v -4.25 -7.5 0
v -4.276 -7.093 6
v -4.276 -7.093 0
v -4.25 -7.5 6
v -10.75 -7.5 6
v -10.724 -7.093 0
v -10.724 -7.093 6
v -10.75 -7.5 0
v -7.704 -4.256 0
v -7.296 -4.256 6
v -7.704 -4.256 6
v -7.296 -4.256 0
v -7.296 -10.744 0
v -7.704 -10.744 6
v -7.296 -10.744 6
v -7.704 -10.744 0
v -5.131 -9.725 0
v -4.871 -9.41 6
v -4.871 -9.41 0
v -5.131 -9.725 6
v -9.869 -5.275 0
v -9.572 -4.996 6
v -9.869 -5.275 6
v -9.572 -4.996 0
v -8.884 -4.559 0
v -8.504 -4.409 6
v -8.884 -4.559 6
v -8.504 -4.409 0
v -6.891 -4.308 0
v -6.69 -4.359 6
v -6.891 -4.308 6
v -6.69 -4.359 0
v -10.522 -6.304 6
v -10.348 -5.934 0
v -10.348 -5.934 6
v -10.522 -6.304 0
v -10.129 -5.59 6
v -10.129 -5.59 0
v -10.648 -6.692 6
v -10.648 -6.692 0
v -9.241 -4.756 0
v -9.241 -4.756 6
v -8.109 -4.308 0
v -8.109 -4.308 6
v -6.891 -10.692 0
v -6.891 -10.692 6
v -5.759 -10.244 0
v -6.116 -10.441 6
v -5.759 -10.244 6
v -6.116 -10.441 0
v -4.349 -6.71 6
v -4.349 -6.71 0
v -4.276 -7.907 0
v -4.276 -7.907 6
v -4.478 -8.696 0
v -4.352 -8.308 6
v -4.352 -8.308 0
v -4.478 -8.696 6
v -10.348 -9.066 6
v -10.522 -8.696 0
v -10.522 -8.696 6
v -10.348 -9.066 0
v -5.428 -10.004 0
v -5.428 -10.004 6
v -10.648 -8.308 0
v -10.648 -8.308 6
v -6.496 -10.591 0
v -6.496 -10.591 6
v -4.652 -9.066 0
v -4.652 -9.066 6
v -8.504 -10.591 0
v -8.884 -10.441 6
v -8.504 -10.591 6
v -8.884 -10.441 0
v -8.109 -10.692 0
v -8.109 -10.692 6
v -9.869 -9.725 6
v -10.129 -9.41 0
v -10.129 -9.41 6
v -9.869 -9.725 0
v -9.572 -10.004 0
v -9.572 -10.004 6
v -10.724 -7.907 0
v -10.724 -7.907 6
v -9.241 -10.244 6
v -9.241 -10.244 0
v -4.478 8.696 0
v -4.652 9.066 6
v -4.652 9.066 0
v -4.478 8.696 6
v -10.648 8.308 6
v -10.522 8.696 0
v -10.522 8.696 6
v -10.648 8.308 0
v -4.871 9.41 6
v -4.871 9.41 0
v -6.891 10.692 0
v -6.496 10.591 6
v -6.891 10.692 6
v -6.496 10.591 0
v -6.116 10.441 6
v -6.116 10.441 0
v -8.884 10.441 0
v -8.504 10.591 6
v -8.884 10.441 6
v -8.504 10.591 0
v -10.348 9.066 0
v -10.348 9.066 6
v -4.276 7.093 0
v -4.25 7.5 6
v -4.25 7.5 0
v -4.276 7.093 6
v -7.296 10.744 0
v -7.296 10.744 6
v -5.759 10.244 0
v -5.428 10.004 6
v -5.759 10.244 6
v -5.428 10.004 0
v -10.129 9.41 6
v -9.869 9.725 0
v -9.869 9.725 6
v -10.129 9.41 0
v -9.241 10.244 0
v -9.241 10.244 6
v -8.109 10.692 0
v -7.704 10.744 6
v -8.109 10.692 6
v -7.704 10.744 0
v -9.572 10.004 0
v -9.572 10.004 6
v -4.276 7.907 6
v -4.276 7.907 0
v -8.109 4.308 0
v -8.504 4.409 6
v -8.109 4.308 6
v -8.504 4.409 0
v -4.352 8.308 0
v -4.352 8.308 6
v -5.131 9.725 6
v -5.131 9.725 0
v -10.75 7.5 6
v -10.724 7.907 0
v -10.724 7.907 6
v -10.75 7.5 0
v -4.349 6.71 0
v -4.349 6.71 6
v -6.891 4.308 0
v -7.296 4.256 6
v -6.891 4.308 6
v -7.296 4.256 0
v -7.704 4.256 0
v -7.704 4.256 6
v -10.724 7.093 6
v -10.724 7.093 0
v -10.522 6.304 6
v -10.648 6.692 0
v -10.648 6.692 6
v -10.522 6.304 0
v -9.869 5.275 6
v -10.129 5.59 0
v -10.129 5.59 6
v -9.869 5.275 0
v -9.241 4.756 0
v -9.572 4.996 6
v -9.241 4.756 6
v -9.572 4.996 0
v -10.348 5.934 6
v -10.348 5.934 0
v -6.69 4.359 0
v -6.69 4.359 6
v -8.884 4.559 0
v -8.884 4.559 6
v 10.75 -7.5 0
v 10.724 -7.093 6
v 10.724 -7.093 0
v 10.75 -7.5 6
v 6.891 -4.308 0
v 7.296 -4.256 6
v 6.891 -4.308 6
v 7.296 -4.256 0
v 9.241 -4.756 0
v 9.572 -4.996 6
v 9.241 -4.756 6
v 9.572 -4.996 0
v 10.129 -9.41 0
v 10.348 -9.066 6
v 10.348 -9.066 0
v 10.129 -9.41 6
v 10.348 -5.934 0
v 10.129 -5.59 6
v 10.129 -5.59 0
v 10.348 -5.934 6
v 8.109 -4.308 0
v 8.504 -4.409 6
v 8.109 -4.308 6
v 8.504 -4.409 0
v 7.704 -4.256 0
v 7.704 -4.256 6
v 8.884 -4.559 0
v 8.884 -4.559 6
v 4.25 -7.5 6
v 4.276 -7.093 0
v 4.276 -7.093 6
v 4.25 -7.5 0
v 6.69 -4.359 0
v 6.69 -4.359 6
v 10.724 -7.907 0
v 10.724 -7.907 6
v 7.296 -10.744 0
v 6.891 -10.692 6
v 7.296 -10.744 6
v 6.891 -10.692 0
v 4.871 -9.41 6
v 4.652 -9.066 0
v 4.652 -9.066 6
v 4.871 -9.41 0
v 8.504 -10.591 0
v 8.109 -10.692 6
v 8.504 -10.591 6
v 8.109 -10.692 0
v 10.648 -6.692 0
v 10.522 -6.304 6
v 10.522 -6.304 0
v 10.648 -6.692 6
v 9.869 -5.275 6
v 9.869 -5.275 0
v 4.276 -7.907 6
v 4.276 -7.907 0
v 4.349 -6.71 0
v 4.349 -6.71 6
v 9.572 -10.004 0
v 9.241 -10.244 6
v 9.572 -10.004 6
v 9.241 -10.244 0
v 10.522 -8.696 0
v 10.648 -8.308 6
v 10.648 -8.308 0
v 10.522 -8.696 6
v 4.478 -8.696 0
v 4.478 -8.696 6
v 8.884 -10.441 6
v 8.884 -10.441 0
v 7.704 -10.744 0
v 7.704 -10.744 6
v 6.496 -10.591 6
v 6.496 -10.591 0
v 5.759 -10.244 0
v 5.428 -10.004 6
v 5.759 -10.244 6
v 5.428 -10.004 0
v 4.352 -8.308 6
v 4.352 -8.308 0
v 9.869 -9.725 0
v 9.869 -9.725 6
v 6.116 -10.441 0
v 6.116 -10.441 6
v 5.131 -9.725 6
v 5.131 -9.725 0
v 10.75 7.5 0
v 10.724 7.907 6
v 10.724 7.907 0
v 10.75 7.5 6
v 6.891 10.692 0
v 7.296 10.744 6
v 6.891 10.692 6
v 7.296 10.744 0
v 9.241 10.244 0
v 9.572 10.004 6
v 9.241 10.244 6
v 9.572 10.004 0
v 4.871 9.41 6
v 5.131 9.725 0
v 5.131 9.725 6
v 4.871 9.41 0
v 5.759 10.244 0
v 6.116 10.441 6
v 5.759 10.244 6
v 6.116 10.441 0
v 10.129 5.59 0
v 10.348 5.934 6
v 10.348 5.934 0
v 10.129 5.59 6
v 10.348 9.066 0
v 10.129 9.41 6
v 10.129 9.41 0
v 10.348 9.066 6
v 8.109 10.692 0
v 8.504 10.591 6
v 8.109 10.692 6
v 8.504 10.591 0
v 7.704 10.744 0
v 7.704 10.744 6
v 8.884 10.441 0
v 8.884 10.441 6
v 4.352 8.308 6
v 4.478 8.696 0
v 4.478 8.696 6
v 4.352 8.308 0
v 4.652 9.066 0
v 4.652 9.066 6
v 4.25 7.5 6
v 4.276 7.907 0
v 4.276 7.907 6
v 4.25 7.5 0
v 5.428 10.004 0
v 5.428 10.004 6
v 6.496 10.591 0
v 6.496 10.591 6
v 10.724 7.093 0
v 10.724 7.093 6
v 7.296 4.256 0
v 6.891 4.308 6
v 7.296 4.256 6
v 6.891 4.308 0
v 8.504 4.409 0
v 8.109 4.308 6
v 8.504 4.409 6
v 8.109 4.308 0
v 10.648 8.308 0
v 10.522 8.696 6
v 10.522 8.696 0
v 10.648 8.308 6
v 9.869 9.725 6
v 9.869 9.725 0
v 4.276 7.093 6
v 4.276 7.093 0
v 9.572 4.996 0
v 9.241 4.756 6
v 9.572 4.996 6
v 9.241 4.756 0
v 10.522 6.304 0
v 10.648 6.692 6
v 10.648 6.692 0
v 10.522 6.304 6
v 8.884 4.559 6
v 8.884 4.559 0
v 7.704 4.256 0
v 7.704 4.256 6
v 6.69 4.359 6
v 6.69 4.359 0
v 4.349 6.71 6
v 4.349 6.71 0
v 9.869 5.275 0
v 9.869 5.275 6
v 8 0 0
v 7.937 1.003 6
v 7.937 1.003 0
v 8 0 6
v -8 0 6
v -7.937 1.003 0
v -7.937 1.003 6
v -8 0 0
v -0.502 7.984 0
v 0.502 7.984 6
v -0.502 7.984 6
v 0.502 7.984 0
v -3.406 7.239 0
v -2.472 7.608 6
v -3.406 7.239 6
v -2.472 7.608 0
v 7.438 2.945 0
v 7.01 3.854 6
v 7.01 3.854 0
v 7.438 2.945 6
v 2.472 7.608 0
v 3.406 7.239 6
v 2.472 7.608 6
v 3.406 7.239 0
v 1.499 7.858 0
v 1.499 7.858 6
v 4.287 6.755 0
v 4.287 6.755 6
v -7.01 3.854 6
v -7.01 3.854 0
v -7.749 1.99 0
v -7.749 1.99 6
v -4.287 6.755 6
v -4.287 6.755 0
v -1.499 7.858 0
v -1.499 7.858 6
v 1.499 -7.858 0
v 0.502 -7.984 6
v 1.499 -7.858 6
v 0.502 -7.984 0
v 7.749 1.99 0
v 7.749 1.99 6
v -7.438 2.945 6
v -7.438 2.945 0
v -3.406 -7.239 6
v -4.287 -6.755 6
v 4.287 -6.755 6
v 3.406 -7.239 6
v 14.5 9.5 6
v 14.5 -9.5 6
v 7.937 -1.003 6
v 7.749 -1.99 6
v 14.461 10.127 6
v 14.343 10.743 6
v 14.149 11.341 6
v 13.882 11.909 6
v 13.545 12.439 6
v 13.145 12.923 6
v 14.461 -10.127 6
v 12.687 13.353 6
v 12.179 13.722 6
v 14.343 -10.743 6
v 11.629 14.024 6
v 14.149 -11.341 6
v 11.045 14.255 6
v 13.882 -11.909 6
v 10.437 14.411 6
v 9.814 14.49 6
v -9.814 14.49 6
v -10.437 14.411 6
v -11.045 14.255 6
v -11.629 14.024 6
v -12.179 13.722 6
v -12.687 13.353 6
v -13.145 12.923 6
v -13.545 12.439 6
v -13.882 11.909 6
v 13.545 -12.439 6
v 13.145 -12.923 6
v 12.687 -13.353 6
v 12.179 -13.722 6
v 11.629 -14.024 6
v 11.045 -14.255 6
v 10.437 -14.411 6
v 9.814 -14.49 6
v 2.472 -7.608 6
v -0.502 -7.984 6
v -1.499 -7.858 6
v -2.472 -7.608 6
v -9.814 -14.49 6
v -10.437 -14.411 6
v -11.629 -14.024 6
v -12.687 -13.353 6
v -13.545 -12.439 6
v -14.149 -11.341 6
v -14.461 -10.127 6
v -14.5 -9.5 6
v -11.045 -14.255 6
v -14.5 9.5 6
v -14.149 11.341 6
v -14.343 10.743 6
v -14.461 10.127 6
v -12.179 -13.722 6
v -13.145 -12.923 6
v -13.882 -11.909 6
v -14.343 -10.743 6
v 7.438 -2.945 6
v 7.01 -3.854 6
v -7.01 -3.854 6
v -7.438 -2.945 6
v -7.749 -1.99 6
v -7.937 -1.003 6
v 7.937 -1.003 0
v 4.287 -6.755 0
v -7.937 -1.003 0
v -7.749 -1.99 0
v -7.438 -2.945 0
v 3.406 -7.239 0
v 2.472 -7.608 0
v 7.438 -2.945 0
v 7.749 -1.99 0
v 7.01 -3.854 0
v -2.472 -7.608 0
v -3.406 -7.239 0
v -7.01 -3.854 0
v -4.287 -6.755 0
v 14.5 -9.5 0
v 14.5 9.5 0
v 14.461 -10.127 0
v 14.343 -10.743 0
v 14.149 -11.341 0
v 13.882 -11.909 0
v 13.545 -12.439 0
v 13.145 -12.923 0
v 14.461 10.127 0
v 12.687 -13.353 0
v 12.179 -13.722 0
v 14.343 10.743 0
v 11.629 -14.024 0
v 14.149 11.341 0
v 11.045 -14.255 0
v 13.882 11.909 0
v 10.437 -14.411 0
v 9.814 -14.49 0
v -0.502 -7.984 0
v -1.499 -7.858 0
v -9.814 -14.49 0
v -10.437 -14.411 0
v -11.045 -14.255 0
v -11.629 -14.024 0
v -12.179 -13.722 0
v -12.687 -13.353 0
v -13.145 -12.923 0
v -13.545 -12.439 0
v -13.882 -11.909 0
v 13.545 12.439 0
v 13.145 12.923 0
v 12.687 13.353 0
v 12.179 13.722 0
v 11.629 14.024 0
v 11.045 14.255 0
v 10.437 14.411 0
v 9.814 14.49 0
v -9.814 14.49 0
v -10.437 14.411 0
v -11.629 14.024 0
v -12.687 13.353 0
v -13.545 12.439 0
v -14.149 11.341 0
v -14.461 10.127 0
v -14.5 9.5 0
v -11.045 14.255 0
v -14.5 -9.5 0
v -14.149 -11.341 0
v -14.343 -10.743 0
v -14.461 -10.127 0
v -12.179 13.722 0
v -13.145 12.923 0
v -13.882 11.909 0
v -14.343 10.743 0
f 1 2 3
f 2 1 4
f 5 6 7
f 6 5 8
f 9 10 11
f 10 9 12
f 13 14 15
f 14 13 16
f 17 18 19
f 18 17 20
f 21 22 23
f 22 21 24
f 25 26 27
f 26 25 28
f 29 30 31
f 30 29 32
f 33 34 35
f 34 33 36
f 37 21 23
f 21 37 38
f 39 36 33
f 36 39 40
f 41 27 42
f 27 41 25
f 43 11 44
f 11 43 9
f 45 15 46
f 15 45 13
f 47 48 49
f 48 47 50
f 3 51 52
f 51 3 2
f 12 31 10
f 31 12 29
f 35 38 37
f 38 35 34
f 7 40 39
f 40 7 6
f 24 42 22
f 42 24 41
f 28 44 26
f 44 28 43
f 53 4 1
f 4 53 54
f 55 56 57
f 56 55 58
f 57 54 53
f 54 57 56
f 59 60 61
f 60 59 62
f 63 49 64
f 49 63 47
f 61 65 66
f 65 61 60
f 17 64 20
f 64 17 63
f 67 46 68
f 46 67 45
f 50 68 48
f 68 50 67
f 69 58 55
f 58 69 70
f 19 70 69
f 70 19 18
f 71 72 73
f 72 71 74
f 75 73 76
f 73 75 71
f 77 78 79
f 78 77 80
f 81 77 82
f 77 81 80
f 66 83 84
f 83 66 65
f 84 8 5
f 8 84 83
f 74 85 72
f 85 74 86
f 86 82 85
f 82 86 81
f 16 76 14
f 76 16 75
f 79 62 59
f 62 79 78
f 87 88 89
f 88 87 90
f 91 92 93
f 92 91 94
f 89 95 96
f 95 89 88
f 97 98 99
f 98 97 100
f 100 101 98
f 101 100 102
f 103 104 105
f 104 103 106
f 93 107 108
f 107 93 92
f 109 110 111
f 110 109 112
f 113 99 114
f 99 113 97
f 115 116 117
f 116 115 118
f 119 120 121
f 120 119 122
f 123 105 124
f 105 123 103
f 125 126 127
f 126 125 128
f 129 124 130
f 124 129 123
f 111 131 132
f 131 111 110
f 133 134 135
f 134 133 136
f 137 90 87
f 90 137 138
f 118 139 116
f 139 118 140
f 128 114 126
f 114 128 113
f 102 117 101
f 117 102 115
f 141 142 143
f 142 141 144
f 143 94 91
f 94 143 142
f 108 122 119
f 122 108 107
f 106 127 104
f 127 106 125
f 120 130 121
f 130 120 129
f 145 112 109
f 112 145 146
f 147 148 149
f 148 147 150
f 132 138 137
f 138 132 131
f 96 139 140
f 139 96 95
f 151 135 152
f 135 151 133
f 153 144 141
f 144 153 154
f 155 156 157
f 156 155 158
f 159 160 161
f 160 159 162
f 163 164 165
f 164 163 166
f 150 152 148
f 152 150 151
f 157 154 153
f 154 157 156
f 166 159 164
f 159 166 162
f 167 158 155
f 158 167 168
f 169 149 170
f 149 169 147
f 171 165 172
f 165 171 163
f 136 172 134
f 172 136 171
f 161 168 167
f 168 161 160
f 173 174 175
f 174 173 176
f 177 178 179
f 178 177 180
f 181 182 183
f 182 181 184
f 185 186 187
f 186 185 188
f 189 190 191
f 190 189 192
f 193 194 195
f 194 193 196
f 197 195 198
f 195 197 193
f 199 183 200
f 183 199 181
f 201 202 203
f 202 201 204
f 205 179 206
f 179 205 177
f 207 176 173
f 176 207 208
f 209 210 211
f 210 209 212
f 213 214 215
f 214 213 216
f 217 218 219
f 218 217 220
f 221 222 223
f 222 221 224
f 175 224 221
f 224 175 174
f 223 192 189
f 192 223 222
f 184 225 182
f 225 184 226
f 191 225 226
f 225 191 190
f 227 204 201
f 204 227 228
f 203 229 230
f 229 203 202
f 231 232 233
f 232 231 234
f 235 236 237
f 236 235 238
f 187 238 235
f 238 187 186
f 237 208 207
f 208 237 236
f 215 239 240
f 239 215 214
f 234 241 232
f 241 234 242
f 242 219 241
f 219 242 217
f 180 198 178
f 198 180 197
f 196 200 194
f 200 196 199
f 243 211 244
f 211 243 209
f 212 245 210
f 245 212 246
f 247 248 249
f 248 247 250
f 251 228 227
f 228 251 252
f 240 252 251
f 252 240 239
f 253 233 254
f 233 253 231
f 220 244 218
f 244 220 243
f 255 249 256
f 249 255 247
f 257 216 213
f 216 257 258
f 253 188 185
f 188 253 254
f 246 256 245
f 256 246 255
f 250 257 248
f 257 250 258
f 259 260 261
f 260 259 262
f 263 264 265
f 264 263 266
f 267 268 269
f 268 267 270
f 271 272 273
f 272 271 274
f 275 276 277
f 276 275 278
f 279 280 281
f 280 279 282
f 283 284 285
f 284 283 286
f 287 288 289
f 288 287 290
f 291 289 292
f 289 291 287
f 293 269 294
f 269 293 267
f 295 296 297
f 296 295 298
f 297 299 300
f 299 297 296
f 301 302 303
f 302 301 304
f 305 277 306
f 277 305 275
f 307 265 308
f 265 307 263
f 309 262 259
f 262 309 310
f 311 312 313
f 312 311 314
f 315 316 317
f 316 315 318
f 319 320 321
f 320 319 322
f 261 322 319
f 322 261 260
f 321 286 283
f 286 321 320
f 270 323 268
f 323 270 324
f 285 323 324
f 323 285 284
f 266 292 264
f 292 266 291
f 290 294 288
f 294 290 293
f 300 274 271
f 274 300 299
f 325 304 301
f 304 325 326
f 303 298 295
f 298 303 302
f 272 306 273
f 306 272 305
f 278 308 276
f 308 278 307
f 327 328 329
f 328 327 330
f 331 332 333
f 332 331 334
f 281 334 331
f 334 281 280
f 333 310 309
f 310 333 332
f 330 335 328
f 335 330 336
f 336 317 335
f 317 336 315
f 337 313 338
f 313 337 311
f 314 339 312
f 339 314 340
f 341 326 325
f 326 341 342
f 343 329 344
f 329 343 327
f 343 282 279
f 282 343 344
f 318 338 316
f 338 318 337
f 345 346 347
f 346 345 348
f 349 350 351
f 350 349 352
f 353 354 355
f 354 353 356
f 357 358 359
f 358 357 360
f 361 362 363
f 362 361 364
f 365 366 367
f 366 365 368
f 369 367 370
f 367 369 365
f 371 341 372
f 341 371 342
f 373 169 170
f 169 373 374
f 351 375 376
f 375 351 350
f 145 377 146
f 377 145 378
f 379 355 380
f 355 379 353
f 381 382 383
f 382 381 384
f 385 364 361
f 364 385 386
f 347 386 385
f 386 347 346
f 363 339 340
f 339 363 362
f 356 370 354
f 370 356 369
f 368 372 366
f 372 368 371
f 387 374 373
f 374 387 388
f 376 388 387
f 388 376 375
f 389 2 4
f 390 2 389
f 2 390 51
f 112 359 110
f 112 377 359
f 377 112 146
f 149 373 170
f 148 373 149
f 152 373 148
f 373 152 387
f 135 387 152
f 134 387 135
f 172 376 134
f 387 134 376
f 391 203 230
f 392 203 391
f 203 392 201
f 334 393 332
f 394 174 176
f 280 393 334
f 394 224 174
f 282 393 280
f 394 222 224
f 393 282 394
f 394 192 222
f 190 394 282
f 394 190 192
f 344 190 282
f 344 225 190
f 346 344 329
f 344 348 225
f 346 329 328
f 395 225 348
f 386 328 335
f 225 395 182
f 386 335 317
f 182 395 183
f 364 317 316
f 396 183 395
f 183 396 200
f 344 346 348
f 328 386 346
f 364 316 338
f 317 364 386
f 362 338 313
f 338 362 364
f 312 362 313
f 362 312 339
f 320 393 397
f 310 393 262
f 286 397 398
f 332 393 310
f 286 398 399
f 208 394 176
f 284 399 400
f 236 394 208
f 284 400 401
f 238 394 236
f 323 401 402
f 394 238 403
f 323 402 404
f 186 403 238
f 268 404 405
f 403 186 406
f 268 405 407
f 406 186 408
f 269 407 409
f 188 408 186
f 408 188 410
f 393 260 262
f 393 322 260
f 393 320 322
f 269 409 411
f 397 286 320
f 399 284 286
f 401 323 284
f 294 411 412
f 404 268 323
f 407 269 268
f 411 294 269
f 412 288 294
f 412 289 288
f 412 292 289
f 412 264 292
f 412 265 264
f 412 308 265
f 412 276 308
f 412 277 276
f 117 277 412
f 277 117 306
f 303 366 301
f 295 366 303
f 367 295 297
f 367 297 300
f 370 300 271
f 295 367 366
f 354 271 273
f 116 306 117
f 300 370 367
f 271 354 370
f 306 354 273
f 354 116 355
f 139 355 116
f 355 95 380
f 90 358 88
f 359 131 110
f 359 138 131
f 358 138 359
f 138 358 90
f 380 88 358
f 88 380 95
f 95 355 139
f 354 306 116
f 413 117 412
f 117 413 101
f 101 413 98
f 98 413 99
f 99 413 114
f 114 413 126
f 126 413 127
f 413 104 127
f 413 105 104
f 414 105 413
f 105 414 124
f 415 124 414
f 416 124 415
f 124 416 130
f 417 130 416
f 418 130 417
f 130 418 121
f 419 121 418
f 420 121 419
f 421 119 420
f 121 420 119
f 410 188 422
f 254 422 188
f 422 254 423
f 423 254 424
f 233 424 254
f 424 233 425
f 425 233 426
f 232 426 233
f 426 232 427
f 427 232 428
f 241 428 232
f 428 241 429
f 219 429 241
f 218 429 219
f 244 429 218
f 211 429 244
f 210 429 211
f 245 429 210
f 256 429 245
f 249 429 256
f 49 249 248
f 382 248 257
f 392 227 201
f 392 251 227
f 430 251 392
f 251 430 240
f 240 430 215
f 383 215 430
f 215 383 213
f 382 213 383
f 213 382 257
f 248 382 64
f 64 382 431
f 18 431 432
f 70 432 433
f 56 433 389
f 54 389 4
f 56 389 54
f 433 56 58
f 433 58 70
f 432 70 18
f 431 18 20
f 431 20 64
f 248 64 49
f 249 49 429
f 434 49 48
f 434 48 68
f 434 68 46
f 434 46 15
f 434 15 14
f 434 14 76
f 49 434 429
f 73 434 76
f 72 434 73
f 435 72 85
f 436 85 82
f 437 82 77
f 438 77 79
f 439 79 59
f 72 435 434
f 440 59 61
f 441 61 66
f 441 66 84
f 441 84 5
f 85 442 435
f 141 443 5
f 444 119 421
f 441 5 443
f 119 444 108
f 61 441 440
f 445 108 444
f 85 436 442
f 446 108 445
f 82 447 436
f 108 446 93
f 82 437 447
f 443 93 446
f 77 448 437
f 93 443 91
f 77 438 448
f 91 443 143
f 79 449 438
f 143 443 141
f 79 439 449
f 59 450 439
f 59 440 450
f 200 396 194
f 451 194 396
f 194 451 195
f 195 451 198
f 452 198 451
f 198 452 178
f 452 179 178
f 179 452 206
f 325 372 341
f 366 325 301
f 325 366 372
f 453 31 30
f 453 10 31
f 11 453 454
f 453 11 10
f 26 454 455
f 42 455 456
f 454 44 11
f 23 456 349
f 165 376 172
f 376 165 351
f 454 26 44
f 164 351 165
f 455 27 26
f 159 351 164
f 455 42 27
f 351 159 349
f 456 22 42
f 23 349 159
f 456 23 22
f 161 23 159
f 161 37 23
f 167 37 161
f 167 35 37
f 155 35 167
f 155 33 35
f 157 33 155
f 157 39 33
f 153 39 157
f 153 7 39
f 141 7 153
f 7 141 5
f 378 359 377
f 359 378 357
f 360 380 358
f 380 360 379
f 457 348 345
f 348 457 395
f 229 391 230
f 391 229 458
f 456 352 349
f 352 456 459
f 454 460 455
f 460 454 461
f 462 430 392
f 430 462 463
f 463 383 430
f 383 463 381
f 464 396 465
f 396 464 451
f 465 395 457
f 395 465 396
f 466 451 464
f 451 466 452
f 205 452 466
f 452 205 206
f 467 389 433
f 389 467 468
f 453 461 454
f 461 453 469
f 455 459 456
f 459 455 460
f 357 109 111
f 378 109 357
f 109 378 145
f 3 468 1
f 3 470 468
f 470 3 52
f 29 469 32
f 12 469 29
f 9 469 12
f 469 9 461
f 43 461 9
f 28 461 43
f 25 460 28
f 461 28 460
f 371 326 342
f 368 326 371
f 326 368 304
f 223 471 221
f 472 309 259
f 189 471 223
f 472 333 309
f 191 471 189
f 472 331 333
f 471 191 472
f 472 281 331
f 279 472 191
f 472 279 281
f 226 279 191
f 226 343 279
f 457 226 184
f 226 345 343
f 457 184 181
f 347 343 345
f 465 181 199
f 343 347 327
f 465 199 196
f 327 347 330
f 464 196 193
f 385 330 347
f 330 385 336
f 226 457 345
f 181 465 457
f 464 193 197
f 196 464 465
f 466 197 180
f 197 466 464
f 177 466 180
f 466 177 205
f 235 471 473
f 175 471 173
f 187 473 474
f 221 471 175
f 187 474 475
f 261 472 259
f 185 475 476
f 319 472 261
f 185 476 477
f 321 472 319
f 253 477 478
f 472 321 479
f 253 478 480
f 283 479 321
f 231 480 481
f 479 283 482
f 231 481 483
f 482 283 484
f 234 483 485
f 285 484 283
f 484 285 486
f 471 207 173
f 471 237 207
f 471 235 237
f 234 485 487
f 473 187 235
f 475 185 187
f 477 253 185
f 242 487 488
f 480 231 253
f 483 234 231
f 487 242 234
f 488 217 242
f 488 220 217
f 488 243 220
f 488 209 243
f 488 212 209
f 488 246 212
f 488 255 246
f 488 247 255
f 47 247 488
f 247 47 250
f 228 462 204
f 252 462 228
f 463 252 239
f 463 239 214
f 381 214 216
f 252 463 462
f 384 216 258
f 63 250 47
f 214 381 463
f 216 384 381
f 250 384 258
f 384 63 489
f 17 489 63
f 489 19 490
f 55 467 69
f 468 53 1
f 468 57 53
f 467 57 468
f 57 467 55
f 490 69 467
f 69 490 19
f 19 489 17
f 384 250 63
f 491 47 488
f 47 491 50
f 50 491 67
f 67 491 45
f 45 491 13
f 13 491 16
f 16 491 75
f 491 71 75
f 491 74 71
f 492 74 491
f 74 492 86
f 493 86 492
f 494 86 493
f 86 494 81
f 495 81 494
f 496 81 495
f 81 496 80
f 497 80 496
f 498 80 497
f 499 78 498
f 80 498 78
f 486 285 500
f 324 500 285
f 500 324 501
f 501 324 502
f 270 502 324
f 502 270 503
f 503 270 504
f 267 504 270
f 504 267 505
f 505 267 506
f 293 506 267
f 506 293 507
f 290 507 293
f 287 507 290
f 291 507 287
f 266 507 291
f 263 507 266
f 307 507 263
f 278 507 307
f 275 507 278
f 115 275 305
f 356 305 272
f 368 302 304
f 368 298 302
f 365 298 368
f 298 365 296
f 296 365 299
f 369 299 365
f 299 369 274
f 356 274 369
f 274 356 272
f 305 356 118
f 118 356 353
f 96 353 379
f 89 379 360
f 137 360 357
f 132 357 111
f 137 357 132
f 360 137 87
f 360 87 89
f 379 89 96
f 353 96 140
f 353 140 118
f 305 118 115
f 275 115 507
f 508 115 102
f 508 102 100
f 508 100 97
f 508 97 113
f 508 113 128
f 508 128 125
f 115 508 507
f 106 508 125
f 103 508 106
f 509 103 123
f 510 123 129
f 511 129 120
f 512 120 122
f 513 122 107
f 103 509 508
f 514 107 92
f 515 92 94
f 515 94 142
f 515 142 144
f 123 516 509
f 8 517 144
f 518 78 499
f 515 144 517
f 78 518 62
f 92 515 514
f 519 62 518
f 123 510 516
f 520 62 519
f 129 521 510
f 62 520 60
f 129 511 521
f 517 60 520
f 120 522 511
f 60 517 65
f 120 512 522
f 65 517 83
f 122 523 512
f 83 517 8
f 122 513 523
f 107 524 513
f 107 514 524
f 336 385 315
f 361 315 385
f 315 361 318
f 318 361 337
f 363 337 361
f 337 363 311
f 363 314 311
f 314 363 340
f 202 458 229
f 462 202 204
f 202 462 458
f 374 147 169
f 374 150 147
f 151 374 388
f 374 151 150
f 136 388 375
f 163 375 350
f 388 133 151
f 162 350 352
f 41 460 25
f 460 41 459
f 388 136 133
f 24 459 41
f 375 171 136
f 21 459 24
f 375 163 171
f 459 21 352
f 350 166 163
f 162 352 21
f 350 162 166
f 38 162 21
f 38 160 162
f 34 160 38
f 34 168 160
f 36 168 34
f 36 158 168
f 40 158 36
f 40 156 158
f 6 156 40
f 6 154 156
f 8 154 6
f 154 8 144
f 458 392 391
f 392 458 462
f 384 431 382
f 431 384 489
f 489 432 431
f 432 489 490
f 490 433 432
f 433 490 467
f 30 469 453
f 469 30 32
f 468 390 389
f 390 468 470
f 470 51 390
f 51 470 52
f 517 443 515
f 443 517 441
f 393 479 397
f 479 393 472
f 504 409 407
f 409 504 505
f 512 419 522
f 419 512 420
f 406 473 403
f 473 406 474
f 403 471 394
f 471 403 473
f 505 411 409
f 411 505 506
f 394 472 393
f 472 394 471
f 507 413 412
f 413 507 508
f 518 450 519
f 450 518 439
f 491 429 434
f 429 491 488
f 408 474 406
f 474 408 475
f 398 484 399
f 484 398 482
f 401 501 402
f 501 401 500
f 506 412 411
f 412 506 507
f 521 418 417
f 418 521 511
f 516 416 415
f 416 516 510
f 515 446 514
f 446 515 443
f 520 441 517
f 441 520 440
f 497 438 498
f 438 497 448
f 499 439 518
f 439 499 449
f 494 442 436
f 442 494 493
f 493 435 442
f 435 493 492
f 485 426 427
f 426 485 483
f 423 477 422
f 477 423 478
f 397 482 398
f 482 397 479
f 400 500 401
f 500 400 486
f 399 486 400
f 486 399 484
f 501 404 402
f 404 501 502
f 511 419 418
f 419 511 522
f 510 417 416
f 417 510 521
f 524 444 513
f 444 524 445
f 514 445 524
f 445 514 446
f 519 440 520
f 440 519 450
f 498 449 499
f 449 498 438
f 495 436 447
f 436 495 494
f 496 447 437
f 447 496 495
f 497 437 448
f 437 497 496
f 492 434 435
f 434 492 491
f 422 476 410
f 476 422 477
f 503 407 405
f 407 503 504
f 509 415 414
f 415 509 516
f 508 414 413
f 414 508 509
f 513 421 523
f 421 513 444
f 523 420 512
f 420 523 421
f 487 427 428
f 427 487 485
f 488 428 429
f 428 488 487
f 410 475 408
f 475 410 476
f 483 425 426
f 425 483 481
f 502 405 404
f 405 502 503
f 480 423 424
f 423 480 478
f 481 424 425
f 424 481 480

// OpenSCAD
$fn = 50;


difference() {
	union() {
		hull() {
			translate(v = [-9.5000000000, 9.5000000000, 0]) {
				cylinder(h = 6, r = 5);
			}
			translate(v = [9.5000000000, 9.5000000000, 0]) {
				cylinder(h = 6, r = 5);
			}
			translate(v = [-9.5000000000, -9.5000000000, 0]) {
				cylinder(h = 6, r = 5);
			}
			translate(v = [9.5000000000, -9.5000000000, 0]) {
				cylinder(h = 6, r = 5);
			}
		}
	}
	union() {
		#translate(v = [-7.5000000000, -7.5000000000, -100.0000000000]) {
			cylinder(h = 200, r = 3.2500000000);
		}
		#translate(v = [-7.5000000000, 7.5000000000, -100.0000000000]) {
			cylinder(h = 200, r = 3.2500000000);
		}
		#translate(v = [7.5000000000, -7.5000000000, -100.0000000000]) {
			cylinder(h = 200, r = 3.2500000000);
		}
		#translate(v = [7.5000000000, 7.5000000000, -100.0000000000]) {
			cylinder(h = 200, r = 3.2500000000);
		}
		#cylinder(h = 6, r = 8.0000000000);
	}
}
